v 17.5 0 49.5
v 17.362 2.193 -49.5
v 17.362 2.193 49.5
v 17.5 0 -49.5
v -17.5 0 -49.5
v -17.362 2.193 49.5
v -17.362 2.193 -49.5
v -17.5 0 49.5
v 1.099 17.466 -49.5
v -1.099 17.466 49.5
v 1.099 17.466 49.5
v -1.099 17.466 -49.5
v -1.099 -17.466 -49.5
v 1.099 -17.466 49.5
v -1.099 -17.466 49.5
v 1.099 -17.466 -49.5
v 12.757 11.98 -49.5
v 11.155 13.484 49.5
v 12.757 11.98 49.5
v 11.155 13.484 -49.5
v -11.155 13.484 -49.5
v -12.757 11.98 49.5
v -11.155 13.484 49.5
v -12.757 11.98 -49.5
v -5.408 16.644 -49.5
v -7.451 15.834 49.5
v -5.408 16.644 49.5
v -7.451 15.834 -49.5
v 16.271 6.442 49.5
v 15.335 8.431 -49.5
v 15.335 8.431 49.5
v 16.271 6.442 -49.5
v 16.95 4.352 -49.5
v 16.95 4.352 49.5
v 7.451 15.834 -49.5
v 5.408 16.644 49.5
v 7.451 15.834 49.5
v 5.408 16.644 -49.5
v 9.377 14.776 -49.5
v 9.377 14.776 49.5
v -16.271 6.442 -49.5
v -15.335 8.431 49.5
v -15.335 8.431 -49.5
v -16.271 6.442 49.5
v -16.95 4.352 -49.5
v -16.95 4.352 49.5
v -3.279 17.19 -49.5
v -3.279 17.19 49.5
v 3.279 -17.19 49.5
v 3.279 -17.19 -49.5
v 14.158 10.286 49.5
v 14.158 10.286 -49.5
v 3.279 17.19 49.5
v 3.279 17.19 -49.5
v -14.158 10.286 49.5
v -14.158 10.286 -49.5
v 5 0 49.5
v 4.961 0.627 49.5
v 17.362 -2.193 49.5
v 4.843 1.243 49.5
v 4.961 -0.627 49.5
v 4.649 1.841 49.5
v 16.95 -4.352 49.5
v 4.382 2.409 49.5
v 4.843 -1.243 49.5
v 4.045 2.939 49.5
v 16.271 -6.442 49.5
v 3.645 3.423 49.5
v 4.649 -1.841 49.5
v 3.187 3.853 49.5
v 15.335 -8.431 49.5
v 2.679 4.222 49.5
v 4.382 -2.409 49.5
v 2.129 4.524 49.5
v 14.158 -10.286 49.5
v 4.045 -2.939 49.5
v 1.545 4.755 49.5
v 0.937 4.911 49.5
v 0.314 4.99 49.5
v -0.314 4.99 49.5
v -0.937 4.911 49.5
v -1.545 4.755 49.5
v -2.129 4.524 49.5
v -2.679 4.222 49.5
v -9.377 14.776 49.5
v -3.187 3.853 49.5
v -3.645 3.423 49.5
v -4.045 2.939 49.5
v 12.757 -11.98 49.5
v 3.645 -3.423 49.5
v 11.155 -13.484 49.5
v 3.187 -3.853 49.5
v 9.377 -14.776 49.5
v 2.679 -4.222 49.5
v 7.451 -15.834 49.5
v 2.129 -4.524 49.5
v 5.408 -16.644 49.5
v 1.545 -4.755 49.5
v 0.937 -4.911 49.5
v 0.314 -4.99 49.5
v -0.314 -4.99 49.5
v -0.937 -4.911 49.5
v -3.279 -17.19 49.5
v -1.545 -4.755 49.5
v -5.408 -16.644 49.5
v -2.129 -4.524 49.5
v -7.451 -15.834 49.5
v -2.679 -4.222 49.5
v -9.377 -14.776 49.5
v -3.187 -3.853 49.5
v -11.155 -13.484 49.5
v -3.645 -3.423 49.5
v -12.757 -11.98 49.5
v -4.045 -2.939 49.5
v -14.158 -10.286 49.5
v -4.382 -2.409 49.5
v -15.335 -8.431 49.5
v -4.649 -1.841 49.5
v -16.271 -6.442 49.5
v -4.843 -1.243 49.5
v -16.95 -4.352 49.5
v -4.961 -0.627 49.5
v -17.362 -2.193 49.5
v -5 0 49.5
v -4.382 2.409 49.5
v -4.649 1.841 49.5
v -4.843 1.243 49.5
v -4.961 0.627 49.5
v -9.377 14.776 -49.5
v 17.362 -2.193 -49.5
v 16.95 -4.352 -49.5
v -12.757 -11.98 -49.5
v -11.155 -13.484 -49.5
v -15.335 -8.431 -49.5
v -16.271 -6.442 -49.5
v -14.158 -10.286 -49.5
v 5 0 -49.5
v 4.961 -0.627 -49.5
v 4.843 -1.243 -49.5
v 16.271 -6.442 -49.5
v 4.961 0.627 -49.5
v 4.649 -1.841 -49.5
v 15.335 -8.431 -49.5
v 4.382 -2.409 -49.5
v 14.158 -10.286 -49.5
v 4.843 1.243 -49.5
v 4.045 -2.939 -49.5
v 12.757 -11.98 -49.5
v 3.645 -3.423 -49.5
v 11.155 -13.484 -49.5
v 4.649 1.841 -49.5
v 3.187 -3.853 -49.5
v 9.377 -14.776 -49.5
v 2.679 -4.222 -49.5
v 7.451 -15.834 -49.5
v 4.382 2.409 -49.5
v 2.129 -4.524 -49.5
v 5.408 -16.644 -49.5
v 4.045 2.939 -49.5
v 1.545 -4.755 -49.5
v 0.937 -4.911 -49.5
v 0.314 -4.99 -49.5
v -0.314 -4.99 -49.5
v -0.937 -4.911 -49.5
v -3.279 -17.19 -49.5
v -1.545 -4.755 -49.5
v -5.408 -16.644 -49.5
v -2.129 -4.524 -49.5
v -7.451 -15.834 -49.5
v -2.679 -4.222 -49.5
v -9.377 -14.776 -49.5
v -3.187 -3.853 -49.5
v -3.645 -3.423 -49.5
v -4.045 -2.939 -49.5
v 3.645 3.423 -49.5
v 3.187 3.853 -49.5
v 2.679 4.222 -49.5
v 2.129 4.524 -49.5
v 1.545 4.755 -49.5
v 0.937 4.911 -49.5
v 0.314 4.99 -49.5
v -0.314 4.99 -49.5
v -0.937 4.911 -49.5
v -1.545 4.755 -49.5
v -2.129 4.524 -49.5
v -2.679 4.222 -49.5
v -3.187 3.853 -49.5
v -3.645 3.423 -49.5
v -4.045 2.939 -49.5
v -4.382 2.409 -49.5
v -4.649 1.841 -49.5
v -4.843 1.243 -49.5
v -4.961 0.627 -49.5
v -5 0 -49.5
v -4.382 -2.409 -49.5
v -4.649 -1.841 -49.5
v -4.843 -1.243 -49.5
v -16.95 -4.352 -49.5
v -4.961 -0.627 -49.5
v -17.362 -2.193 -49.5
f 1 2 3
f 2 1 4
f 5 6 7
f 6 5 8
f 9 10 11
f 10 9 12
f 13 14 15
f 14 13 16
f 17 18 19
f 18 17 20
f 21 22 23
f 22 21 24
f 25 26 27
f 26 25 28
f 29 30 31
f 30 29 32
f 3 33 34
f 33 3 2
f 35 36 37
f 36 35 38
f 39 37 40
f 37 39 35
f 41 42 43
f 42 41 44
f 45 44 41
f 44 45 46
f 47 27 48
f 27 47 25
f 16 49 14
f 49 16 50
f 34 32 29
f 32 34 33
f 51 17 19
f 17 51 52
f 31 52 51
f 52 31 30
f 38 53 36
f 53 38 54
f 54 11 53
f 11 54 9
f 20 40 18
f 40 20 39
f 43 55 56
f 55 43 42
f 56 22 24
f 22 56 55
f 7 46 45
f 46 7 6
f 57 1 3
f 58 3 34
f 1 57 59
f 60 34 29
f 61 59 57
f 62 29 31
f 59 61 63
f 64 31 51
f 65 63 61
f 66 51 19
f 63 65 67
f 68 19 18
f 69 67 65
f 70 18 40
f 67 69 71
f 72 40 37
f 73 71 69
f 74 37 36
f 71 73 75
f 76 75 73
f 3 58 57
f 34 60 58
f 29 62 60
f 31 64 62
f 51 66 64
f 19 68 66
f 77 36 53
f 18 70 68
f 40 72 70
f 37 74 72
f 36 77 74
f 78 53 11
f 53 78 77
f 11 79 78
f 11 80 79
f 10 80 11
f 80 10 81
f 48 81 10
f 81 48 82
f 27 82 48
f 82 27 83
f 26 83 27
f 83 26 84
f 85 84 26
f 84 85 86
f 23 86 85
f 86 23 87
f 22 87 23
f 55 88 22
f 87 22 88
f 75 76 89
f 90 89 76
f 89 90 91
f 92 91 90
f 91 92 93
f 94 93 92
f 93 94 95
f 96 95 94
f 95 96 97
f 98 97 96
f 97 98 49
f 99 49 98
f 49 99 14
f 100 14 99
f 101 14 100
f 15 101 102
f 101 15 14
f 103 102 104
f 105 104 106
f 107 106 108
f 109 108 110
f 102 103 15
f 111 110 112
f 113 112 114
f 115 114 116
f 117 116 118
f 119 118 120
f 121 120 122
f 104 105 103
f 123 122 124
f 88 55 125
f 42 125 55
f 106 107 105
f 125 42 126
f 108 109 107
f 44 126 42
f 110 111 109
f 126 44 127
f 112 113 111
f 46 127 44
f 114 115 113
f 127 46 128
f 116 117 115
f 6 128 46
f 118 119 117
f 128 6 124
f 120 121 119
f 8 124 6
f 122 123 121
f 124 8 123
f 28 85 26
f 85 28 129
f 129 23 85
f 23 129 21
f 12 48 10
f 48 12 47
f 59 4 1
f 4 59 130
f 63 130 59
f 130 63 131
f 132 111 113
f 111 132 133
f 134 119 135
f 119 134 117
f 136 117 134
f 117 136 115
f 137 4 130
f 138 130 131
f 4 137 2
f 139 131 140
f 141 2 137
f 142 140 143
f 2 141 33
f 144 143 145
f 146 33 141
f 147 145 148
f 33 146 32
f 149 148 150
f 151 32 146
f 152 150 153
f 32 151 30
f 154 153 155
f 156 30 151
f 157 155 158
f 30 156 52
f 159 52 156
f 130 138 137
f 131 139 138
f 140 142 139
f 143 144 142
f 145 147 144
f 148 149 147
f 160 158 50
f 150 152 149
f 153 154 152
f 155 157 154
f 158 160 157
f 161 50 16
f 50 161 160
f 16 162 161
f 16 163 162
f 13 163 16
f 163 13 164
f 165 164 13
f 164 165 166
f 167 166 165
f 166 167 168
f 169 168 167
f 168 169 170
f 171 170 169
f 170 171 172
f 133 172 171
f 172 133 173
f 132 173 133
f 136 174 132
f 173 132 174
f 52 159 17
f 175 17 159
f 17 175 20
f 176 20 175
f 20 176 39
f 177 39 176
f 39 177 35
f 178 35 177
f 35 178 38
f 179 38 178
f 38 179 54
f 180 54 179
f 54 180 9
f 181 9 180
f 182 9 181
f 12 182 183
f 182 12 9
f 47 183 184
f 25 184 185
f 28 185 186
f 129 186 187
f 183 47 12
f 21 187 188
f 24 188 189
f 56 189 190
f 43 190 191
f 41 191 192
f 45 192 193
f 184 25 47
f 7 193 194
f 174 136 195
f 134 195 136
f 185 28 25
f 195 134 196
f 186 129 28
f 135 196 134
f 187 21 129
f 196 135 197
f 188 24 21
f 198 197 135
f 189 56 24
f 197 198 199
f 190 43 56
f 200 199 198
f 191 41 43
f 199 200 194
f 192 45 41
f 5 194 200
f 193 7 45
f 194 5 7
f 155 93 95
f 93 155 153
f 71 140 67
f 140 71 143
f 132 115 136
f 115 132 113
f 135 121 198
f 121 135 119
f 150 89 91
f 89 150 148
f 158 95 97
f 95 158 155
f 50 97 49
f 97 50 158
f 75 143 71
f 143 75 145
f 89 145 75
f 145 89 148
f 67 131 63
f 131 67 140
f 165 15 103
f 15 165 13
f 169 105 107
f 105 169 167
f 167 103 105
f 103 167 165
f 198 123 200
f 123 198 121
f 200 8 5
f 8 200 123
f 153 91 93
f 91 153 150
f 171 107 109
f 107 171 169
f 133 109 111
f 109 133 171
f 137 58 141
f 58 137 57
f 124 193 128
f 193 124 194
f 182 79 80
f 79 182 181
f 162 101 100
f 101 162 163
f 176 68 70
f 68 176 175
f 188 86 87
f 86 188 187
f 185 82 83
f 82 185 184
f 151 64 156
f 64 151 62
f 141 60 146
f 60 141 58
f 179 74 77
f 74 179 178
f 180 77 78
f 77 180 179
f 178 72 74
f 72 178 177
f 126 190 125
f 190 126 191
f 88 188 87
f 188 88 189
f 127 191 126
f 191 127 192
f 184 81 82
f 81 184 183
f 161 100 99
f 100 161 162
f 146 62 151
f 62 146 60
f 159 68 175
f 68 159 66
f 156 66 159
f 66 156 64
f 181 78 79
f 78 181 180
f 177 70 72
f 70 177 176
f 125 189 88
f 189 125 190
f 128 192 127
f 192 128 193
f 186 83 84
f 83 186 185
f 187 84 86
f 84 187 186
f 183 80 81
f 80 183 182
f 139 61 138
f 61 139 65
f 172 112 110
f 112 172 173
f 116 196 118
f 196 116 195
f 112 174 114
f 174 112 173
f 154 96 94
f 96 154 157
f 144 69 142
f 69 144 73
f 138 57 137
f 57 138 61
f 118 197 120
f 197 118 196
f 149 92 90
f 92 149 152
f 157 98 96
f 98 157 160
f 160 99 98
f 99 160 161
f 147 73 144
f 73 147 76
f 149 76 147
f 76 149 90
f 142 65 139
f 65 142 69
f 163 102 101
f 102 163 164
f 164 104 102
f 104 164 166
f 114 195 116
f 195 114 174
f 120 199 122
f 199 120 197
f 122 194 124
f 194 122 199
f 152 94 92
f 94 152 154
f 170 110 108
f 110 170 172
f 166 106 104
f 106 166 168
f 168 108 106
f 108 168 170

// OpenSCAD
$fn = 50;


difference() {
	union() {
		translate(v = [0, 0, -49.5000000000]) {
			cylinder(h = 99, r = 17.5000000000);
		}
	}
	union() {
		translate(v = [0, 0, -100.0000000000]) {
			cylinder(h = 200, r = 5);
		}
	}
}
